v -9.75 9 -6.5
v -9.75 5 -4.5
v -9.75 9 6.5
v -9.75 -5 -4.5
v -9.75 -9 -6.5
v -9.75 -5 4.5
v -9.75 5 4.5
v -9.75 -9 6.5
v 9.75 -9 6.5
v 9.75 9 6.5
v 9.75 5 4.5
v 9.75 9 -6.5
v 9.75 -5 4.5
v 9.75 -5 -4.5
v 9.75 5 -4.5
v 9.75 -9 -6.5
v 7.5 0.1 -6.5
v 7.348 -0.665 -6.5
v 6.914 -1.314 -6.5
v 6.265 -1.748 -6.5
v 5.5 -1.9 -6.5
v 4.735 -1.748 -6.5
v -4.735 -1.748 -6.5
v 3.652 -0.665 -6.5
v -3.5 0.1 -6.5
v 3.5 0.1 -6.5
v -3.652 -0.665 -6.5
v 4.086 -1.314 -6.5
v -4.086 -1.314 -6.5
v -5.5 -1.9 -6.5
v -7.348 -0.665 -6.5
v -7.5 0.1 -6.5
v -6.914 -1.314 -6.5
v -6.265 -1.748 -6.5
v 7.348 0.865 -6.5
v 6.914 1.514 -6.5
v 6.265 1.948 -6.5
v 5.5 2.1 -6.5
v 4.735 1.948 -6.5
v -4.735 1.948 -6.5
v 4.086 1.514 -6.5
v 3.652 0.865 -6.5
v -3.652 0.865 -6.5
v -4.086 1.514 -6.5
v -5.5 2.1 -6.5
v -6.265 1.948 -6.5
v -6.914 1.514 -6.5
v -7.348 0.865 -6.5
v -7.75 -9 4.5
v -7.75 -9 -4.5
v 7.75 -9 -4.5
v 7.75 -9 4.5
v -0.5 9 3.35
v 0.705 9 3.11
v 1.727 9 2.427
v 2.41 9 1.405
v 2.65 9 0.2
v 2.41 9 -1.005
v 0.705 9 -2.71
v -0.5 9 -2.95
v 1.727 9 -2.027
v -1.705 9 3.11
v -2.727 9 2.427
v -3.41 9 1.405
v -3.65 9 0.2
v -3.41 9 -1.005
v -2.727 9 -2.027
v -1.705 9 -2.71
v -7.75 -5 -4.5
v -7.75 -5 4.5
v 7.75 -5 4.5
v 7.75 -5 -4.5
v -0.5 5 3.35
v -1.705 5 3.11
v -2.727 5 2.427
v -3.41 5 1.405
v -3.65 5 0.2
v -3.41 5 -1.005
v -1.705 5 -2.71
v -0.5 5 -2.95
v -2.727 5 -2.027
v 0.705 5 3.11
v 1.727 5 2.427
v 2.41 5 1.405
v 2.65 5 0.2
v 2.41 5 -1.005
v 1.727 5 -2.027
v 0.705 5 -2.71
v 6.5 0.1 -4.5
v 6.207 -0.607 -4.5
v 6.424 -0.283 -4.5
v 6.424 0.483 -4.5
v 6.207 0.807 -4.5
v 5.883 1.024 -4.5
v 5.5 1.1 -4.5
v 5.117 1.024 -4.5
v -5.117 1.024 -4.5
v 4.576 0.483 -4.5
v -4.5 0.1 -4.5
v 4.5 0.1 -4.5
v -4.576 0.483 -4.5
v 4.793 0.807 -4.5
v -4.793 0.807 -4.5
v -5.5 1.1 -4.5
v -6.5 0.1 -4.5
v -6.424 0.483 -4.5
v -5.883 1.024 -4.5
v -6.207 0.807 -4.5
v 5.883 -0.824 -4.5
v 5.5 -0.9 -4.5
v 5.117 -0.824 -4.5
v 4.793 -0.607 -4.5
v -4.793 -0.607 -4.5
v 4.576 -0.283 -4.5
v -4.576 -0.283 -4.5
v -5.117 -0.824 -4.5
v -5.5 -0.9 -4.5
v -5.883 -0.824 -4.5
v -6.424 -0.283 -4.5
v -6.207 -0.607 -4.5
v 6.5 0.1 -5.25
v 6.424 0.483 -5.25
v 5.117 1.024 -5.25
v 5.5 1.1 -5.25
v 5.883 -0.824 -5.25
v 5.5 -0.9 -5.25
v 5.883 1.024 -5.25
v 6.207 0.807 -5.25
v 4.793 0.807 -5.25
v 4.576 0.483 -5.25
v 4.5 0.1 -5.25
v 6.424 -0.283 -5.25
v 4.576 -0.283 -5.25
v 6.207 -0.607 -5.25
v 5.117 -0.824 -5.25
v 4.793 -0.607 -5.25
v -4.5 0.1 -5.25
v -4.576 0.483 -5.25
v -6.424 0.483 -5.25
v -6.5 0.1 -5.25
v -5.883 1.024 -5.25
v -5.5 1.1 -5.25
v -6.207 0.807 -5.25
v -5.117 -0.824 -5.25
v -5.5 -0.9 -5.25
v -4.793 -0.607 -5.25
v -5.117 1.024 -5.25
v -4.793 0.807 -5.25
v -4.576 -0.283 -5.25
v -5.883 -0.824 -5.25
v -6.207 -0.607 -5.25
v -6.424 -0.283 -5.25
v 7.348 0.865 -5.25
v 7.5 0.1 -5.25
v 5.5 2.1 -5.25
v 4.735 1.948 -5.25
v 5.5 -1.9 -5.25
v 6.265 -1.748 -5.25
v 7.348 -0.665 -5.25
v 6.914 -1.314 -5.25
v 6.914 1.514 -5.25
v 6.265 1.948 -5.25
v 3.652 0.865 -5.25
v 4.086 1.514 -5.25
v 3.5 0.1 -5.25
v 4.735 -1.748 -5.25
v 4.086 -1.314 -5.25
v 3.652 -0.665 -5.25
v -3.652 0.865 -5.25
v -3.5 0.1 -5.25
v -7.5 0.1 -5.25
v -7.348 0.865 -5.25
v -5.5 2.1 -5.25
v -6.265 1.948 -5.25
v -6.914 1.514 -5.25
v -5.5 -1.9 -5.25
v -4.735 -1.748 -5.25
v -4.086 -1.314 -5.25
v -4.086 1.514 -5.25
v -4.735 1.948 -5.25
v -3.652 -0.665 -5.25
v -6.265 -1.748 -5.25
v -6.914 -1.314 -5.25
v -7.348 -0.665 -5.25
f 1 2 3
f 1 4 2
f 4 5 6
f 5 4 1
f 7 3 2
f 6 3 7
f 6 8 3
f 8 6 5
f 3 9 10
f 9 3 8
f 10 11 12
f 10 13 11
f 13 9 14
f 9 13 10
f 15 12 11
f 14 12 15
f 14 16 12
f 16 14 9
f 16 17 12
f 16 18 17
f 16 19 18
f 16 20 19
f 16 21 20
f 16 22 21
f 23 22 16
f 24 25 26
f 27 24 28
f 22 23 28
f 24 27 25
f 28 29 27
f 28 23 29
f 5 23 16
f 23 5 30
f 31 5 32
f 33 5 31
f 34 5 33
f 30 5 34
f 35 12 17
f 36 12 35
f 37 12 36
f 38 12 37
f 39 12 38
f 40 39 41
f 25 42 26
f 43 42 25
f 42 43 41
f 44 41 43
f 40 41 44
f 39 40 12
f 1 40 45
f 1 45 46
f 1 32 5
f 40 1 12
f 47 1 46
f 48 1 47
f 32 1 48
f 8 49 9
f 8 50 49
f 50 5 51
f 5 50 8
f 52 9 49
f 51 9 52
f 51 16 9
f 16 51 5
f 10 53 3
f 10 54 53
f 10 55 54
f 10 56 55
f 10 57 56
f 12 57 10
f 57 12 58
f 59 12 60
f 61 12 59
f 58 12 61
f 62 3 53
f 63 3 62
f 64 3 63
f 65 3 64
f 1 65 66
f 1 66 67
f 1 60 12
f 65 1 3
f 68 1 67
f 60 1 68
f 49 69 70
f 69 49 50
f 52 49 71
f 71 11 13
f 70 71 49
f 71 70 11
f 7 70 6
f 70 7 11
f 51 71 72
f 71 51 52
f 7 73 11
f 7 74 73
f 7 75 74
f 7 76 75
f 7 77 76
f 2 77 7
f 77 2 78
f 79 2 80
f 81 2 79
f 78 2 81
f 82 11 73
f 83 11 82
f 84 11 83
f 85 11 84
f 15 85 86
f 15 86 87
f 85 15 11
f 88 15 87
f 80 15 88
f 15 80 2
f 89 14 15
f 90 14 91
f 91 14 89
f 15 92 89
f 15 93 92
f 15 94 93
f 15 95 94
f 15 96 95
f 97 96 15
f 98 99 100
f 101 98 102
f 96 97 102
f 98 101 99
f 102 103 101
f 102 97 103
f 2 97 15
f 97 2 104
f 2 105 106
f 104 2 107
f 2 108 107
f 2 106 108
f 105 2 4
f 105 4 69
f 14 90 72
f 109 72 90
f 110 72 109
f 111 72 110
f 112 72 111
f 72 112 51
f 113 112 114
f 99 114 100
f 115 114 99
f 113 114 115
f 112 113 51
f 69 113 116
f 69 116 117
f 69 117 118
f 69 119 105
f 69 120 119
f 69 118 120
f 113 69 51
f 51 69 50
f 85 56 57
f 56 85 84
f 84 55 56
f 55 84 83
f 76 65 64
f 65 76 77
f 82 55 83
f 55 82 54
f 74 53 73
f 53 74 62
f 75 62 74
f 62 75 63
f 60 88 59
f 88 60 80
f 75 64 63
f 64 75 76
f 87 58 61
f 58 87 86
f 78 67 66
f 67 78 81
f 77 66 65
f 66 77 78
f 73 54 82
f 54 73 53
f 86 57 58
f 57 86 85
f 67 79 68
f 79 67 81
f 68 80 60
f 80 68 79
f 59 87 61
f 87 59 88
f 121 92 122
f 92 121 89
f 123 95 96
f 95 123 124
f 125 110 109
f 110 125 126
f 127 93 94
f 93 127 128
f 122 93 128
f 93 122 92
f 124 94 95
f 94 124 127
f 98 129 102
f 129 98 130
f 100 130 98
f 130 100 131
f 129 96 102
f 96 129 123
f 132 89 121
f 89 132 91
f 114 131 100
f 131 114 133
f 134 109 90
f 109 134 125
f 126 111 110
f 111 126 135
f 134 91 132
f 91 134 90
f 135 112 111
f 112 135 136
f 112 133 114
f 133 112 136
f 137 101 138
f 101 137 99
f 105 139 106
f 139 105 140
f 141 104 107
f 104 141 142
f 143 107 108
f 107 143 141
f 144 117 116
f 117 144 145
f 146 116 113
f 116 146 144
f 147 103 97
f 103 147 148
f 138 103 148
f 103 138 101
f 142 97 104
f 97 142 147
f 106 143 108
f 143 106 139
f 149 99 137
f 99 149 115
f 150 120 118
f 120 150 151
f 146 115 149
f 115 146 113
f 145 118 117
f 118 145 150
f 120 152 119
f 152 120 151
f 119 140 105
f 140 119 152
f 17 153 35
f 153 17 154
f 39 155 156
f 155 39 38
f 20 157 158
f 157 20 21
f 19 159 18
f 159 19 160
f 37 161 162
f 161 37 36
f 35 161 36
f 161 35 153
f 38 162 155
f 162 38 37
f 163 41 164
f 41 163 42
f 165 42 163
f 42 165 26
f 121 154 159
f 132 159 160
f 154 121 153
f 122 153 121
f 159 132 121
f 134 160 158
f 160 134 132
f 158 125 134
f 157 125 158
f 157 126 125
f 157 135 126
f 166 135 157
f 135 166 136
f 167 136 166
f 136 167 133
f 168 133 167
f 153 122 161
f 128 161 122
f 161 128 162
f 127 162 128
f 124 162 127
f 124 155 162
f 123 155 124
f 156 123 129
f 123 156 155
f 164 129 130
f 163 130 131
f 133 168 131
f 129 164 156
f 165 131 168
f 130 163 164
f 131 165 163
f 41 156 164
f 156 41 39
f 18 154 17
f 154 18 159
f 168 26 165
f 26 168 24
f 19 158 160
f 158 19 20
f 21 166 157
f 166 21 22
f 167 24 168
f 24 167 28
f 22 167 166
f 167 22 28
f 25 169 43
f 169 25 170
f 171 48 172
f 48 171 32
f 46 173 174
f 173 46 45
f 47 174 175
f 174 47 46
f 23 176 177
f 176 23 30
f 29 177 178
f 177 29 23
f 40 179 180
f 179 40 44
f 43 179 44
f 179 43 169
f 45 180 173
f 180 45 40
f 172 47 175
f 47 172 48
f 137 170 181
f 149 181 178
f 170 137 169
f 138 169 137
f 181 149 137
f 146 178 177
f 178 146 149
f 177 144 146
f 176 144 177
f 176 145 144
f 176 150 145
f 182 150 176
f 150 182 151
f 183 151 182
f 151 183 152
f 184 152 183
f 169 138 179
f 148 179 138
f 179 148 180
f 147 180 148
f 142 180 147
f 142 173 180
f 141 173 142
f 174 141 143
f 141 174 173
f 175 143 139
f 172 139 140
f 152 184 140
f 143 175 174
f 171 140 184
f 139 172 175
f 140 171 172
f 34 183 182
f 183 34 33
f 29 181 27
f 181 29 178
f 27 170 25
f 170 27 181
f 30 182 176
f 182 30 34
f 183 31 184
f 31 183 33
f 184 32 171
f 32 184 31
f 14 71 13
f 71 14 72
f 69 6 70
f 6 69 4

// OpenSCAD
fn = 16;
cubeInnerLength=14;
cubeInnerWidth=15.5;
cubeInnerHeight=9;
wallthickness=2;
laserBarrelRadius=6;
platinenBreite=15;
innerCubeDelta=2;
screwTotalLength=11.2;
screwHeadHeight=1.25;
screwHeadDiameter=4;
screwXOffset=2;
screwYOffset=4.9;
nutHeight=1.5;

difference(){
  cube([cubeInnerWidth + 2*wallthickness, cubeInnerLength + 2*wallthickness, cubeInnerHeight + 2*wallthickness], center=true);
  translate([0, -innerCubeDelta, 0])cube([cubeInnerWidth, cubeInnerLength, cubeInnerHeight], center=true);
  translate([-0.5, cubeInnerLength/2, 1-0.3-0.5])rotate([90, 0, 0])cylinder($fn = fn, d=laserBarrelRadius + 0.3, h=2*innerCubeDelta, center=true);
  
  //Löcher Schrauben
  translate([platinenBreite/2-screwXOffset, cubeInnerLength/2-screwYOffset-innerCubeDelta, -wallthickness])cylinder($fn = fn, h=cubeInnerHeight + wallthickness, d=2, center=true);
  translate([-(platinenBreite/2-screwXOffset), cubeInnerLength/2-screwYOffset-innerCubeDelta, -wallthickness])cylinder($fn = fn, h=cubeInnerHeight + wallthickness, d=2, center=true);
  
  //Löcher Schraubköpfe
  translate([platinenBreite/2-screwXOffset, cubeInnerLength/2-screwYOffset-innerCubeDelta, -(cubeInnerHeight + 2*wallthickness-screwHeadHeight)/2])cylinder($fn = fn, h=screwHeadHeight, d=screwHeadDiameter, center=true);
  translate([-(platinenBreite/2-screwXOffset), cubeInnerLength/2-screwYOffset-innerCubeDelta, -(cubeInnerHeight + 2*wallthickness-screwHeadHeight)/2])cylinder($fn = fn, h=screwHeadHeight, d=screwHeadDiameter, center=true);
  
  //Seitenlöcher für Mutternbefestigung
  translate([(cubeInnerWidth+wallthickness)/2,0,0])cube([wallthickness, 10, cubeInnerHeight], center=true);
  translate([-(cubeInnerWidth+wallthickness)/2,0,0])cube([wallthickness, 10, cubeInnerHeight], center=true);
}
